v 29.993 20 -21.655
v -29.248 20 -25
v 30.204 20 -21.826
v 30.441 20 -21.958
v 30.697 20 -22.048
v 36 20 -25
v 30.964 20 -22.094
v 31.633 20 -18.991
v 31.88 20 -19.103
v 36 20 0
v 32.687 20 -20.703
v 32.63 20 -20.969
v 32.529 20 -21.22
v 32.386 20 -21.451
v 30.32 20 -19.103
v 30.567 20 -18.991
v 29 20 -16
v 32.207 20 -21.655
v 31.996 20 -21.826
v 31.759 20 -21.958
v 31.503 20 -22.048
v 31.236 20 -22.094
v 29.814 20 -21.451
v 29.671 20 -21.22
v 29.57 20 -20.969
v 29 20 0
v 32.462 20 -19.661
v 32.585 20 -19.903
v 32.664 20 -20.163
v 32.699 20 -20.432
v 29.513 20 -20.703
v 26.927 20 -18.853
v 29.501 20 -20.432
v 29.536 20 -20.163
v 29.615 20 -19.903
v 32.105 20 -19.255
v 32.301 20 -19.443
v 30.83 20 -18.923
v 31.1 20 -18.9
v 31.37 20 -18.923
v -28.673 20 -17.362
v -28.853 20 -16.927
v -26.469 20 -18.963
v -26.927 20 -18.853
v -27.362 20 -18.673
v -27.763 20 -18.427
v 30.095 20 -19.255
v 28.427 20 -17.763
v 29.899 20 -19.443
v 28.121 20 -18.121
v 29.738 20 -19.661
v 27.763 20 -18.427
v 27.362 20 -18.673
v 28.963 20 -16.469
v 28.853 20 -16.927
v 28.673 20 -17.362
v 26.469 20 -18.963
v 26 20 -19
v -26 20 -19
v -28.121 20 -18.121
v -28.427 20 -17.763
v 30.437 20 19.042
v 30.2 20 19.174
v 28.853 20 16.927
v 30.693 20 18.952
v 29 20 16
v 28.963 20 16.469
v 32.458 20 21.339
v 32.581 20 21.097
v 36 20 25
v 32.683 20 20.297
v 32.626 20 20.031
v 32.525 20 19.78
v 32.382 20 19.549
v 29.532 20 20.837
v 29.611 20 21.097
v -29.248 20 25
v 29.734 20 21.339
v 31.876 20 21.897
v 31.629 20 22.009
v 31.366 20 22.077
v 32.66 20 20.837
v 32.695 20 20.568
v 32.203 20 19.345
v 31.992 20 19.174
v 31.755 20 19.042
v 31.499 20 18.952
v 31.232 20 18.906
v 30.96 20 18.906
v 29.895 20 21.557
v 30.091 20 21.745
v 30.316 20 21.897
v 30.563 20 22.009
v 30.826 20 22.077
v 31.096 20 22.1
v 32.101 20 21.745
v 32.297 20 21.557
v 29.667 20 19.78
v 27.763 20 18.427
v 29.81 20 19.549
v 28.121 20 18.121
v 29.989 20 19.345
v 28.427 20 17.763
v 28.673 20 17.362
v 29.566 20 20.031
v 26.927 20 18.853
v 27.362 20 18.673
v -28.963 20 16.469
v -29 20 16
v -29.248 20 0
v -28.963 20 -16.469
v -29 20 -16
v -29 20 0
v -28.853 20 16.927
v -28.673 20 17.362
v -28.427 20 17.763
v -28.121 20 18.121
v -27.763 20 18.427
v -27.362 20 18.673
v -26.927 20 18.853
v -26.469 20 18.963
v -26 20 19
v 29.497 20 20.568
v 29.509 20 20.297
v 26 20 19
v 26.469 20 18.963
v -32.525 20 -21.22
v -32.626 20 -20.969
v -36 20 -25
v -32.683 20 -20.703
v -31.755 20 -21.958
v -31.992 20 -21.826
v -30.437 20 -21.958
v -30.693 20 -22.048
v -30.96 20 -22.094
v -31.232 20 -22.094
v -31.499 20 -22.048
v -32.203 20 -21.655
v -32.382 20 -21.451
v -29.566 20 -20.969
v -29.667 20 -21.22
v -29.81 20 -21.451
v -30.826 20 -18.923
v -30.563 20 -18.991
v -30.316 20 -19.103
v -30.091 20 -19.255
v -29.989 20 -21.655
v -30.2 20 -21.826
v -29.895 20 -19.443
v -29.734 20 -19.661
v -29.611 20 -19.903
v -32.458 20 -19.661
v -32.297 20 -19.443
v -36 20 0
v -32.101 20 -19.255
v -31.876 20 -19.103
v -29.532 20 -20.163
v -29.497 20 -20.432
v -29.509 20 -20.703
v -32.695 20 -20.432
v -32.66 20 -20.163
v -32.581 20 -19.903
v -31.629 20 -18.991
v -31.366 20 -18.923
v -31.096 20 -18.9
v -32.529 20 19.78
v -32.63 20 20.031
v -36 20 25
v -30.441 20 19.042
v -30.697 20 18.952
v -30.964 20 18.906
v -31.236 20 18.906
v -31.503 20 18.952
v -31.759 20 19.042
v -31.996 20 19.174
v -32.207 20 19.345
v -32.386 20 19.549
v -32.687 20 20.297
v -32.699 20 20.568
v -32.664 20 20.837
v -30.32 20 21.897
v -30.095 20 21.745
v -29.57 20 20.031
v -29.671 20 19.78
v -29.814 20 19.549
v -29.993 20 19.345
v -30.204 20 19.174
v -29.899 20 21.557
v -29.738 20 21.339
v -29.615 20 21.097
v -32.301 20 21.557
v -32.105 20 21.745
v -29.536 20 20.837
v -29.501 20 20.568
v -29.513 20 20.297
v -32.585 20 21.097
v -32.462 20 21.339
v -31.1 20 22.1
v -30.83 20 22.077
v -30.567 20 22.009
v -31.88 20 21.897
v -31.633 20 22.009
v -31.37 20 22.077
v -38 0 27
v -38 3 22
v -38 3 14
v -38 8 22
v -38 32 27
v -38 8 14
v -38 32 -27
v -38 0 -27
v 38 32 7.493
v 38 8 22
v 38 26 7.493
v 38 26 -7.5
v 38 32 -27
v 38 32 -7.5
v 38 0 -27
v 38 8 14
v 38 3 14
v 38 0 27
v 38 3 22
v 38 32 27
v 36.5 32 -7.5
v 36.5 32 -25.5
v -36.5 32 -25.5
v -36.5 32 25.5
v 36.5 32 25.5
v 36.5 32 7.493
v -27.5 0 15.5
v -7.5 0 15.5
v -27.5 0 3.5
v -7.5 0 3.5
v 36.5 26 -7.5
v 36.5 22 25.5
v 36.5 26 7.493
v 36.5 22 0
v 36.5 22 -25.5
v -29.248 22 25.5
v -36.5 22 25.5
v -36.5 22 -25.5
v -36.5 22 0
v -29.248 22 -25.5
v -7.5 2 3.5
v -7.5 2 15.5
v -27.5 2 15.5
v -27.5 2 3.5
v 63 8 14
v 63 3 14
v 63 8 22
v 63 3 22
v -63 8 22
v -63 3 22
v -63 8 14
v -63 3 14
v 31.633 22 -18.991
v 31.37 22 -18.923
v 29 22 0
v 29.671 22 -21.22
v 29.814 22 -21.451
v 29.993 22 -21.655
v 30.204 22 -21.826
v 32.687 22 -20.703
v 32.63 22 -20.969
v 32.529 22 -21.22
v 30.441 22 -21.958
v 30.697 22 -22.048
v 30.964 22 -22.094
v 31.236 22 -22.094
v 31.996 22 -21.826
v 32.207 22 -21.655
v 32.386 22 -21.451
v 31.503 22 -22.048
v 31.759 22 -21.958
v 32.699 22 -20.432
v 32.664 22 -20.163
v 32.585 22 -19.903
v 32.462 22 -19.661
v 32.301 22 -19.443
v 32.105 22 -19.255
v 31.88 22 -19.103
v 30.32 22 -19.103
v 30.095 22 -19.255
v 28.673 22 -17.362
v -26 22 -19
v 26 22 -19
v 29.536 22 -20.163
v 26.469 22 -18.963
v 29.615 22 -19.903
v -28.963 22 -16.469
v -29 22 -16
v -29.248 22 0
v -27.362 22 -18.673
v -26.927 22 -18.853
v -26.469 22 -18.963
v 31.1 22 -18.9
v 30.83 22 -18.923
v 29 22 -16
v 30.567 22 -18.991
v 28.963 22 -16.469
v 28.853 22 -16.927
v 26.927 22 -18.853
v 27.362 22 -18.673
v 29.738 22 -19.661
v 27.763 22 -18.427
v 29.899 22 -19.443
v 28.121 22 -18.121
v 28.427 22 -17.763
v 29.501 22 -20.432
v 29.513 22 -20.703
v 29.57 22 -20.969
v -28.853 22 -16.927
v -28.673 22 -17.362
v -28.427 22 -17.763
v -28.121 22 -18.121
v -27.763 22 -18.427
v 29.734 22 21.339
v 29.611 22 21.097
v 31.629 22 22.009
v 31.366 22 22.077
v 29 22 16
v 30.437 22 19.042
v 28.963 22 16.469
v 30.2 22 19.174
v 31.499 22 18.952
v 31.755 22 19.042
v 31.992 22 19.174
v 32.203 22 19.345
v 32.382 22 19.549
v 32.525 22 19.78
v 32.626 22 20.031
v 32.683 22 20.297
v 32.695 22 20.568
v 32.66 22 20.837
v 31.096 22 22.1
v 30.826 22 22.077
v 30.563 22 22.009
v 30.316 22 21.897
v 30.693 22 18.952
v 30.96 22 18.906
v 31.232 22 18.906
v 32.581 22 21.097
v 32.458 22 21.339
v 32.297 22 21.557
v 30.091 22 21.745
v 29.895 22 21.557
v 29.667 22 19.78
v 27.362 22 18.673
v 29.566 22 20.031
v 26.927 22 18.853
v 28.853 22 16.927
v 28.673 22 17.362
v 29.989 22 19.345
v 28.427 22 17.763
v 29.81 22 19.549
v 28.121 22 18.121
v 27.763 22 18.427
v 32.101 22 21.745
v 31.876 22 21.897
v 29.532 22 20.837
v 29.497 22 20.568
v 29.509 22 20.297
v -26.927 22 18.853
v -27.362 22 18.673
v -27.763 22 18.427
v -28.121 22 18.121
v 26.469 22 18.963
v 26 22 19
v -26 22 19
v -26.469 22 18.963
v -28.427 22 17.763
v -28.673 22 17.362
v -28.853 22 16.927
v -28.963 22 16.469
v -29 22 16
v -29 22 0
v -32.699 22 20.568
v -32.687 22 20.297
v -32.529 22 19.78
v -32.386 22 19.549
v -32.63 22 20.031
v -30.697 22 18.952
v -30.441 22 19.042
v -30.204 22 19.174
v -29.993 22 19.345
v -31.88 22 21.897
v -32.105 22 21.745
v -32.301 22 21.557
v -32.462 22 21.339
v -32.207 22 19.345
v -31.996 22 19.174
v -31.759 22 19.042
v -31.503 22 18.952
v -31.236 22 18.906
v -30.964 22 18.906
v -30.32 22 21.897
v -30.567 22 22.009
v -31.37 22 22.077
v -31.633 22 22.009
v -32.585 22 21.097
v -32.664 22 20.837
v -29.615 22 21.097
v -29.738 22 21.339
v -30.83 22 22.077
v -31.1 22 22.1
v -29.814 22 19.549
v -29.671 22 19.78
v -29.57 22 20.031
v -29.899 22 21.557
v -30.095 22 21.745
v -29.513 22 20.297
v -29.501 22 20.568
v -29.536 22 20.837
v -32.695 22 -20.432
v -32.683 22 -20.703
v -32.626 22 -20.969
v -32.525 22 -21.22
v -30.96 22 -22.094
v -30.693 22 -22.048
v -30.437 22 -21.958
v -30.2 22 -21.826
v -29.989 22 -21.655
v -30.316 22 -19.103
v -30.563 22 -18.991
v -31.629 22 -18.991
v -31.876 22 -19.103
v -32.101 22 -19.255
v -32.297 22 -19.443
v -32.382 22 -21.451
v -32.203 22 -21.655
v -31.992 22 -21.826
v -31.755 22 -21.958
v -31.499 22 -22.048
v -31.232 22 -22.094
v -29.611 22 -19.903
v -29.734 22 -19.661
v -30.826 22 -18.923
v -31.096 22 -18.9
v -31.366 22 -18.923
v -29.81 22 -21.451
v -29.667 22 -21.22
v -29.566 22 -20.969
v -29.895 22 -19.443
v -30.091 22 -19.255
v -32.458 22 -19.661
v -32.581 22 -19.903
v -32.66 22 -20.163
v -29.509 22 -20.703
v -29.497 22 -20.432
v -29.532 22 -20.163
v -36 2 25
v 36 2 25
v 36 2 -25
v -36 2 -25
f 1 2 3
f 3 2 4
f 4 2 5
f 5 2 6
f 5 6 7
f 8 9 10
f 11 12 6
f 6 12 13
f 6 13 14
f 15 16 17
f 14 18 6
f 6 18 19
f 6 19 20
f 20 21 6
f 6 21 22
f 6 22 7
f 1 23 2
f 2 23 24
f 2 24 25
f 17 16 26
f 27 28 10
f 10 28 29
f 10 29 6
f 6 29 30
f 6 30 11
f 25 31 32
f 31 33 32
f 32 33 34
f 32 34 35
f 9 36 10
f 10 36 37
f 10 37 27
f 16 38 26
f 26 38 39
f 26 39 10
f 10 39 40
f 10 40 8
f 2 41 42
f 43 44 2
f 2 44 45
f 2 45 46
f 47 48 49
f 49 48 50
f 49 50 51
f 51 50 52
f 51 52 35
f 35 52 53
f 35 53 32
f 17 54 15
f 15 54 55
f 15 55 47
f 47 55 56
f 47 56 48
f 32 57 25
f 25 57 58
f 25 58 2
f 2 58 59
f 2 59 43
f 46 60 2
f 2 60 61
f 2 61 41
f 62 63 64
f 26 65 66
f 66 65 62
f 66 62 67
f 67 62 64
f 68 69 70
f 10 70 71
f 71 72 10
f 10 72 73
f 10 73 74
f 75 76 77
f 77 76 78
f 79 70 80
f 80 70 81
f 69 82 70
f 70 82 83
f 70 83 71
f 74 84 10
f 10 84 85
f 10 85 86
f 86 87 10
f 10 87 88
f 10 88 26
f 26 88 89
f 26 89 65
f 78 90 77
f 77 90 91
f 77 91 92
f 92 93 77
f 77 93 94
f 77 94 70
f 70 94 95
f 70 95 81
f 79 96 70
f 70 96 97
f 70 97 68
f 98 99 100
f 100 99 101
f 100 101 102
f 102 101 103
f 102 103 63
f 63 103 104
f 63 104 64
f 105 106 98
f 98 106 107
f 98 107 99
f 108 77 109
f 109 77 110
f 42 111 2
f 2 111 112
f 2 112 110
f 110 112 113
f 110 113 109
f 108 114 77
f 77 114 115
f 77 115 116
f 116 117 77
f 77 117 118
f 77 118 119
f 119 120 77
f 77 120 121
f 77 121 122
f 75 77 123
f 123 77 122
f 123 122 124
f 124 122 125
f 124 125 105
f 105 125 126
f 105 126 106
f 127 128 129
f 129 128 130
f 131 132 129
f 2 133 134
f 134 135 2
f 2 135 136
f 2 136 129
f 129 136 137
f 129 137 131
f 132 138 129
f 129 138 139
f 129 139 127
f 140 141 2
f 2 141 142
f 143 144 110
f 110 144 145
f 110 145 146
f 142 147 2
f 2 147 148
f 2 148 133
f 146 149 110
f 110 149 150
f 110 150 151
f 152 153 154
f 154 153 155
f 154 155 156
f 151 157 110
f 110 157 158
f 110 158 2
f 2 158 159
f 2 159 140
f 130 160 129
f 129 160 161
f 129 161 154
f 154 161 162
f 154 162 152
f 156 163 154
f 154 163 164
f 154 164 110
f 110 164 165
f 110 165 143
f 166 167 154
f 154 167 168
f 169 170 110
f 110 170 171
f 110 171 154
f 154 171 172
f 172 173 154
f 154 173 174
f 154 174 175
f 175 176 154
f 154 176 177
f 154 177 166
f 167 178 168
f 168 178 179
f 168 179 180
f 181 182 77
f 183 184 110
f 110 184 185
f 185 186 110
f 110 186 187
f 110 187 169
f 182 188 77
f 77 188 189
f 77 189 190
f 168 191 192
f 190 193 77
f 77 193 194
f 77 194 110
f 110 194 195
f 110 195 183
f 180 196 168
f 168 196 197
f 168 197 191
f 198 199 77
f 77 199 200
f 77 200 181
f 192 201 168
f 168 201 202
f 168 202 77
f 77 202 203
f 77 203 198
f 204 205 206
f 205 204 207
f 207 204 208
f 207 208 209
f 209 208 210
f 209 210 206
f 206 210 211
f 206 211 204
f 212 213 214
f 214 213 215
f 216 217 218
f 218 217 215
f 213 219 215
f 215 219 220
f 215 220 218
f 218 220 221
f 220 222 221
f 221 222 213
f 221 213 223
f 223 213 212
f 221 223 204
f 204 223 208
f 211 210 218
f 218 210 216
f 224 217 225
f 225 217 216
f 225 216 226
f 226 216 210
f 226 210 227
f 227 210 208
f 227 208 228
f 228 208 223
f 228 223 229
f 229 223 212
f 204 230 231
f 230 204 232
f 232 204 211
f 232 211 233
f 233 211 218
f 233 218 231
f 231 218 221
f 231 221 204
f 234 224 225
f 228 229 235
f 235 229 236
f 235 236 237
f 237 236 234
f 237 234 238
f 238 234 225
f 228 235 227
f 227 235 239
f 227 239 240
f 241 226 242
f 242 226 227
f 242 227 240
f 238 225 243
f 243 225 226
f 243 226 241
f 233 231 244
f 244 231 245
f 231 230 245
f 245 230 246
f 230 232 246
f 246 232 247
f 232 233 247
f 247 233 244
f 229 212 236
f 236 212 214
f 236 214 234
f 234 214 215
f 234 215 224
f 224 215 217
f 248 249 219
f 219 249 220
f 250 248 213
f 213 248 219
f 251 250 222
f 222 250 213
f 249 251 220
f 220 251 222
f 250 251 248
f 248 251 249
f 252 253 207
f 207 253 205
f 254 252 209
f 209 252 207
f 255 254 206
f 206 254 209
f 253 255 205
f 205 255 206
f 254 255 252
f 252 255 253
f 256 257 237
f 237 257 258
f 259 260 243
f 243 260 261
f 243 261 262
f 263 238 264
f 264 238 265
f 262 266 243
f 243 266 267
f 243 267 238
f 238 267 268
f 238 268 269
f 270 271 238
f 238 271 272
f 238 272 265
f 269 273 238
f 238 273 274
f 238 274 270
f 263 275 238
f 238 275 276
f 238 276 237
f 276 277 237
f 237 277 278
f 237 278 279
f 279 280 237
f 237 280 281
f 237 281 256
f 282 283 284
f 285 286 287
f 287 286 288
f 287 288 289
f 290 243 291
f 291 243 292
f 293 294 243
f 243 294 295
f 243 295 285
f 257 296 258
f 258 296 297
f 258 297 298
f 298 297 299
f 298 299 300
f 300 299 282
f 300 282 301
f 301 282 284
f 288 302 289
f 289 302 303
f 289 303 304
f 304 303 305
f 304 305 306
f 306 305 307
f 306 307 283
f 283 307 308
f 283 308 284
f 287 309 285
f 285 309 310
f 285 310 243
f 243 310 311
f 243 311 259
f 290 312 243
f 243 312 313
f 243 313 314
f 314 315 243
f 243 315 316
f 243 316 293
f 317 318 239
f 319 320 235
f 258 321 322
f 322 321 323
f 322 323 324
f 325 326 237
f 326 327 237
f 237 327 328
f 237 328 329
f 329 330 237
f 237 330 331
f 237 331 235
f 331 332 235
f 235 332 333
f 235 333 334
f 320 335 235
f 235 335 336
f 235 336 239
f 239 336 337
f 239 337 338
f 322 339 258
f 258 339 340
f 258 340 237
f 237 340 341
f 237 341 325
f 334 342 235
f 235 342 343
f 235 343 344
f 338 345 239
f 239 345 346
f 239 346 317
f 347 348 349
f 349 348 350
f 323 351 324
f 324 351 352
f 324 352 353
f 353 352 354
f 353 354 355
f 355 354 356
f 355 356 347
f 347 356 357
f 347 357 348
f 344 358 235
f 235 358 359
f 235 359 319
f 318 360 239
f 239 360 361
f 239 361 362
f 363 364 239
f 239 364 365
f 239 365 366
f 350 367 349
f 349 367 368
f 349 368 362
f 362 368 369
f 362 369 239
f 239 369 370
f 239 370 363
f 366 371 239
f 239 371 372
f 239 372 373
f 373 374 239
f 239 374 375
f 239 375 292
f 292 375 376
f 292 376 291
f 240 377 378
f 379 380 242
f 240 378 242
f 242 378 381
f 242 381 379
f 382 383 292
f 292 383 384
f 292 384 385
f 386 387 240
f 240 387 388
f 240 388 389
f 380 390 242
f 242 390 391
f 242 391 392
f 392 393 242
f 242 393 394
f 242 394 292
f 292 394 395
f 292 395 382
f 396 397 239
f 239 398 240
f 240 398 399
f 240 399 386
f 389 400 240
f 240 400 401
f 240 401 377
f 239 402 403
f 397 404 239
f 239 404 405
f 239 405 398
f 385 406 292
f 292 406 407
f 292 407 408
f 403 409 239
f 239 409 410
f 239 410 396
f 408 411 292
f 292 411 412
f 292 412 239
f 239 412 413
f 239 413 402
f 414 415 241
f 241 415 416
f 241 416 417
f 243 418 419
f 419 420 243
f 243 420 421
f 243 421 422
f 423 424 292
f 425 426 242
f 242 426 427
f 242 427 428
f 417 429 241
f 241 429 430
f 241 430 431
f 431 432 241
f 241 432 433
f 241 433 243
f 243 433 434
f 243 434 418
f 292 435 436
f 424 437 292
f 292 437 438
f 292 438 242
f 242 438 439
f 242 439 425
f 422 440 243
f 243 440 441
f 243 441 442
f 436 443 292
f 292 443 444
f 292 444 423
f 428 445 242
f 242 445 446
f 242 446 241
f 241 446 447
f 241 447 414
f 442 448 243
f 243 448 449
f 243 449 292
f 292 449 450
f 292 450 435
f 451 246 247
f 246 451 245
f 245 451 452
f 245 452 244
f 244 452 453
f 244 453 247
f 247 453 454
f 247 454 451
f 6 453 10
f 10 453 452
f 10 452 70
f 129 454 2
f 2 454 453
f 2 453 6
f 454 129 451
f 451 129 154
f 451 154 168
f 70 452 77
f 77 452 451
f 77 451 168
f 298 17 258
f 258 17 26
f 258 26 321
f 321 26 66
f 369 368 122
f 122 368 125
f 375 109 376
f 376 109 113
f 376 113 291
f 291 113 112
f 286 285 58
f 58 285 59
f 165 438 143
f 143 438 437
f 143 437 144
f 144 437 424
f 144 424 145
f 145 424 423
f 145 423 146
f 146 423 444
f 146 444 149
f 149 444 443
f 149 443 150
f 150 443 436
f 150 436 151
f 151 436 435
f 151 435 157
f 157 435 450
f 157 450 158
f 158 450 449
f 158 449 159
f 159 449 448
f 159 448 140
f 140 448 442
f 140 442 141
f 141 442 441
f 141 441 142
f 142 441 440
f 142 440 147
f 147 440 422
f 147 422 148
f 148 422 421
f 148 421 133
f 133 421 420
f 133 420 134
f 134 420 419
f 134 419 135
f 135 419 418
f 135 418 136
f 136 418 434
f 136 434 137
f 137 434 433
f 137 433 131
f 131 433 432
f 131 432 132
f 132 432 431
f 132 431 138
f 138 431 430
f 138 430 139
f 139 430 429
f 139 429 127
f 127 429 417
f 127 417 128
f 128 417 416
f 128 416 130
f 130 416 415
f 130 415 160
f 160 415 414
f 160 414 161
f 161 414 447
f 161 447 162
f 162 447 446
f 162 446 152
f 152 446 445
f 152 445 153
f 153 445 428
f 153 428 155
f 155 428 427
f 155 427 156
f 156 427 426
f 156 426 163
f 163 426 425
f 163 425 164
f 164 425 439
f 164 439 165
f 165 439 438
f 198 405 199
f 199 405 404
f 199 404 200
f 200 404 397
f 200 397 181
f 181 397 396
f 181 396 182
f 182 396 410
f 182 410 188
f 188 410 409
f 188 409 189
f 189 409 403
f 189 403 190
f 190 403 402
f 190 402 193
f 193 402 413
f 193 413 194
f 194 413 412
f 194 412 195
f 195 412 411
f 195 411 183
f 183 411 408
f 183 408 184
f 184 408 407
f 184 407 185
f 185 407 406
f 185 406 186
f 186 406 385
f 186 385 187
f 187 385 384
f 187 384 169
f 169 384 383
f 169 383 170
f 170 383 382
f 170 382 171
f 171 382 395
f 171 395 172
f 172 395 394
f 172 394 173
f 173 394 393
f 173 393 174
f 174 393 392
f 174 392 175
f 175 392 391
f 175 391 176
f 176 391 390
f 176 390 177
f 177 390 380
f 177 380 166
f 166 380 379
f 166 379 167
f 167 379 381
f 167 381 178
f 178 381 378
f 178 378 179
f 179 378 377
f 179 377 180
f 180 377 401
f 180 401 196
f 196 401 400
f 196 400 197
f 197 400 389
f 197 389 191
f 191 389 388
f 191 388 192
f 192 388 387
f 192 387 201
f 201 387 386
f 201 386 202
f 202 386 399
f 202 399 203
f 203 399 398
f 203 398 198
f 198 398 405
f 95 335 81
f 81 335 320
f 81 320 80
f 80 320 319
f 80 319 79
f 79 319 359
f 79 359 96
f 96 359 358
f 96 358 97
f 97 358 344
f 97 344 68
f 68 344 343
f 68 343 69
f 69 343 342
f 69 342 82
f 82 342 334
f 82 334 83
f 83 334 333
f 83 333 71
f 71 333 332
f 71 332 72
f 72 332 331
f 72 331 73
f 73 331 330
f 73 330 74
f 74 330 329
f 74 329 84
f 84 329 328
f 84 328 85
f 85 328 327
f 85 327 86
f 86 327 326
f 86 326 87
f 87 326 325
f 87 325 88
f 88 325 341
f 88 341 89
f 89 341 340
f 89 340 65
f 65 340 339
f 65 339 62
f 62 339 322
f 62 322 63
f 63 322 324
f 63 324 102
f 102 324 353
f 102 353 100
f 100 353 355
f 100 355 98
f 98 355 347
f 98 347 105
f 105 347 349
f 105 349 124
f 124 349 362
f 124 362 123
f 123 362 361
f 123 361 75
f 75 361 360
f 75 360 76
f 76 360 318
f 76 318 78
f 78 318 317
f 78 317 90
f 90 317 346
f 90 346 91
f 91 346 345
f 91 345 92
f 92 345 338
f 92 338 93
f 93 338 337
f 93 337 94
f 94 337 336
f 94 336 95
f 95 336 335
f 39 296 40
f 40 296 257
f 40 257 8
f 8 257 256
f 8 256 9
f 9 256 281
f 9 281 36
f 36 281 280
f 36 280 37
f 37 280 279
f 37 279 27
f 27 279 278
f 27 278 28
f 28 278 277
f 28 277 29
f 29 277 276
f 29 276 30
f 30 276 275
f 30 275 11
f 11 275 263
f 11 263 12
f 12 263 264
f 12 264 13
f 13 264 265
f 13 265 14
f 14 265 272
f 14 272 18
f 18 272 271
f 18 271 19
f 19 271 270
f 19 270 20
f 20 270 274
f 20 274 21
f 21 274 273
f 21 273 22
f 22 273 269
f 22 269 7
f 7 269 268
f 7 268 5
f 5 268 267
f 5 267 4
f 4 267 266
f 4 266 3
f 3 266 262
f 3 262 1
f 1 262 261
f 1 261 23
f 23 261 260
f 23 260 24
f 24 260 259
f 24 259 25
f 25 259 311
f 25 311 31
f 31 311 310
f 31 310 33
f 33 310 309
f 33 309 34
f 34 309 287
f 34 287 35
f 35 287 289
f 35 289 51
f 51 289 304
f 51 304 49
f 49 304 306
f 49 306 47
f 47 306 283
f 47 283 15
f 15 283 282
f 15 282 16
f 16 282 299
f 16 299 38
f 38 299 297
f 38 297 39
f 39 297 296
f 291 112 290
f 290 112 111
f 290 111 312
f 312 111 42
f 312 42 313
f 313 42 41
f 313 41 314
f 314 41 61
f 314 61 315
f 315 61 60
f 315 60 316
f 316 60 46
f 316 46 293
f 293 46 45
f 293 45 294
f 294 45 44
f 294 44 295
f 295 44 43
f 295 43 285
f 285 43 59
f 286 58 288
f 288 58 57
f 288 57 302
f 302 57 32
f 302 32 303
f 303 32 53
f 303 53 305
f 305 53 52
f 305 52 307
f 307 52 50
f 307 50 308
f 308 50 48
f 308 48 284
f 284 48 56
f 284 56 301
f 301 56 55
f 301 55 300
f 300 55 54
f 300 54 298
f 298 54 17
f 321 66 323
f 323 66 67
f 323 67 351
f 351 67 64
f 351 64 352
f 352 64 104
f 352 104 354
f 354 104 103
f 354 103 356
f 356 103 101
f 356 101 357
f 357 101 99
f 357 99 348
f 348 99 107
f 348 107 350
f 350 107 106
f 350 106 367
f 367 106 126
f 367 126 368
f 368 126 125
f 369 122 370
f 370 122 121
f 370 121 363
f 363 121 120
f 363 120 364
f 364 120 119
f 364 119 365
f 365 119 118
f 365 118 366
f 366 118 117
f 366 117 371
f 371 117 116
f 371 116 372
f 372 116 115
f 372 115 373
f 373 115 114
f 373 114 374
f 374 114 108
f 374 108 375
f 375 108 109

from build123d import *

# Parameters (mm, degrees)
ENCLOSURE_SHELL_SKETCH_W      = 76
ENCLOSURE_SHELL_SKETCH_H      = 54
ENCLOSURE_SHELL_FEATURE_DEPTH = 32
ENCLOSURE_GAP_SKETCH_W        = 73
ENCLOSURE_GAP_SKETCH_H        = 51
ENCLOSURE_GAP_FEATURE_DEPTH   = 30
CAMERA_CORD_HOLE_SKETCH_W     = 20
CAMERA_CORD_HOLE_SKETCH_H     = 12
CAMERA_CORD_HOLE_DEPTH        = 3
BATTERY_CUT_REACH             = 78
BATTERY_CUT_DIRECTION_2_DEPTH = 1
RIGHT_TAB_FEATURE_SKETCH_W    = 8
RIGHT_TAB_FEATURE_SKETCH_H    = 5
RIGHT_TAB_FEATURE_DEPTH       = 25
LEFT_TAB_FEATURE_SKETCH_W     = 8
LEFT_TAB_FEATURE_SKETCH_H     = 5
LEFT_TAB_FEATURE_DEPTH        = 25
SKETCH1_W                     = 76
SKETCH1_H                     = 54
BOSS_EXTRUDE1_DEPTH           = 20
CUT_EXTRUDE2_START            = -2
SKETCH5_W                     = 72
SKETCH5_H                     = 50
CUT_EXTRUDE2_DEPTH            = 18
SCREW_SHELL_SKETCH_R          = 2.5
SCREW_SHELL_FEATURE_DEPTH     = 1
SKETCH6_W                     = 58
SKETCH6_H                     = 38
CUT_EXTRUDE3_DEPTH            = 2
SCREW_HOLE_SKETCH_R           = 1.6
CUT_EXTRUDE4_DEPTH            = 2
FILLET1_R                     = 3
FILLET2_R                     = 3
FILLET3_R                     = 3
FILLET4_R                     = 3


with BuildPart() as part:
    # Enclosure Shell Sketch → Enclosure Shell Feature (new body)
    with BuildSketch(Plane(origin=(0, 0, 0), x_dir=(1, 0, 0), z_dir=(0, 1, 0))):
        Rectangle(ENCLOSURE_SHELL_SKETCH_W, ENCLOSURE_SHELL_SKETCH_H)
    extrude(amount=ENCLOSURE_SHELL_FEATURE_DEPTH)

    # Enclosure Gap Sketch → Enclosure Gap Feature (cut)
    with BuildSketch(Plane(origin=(0, 32, 0), x_dir=(1, 0, 0), z_dir=(0, 1, 0))):
        Rectangle(ENCLOSURE_GAP_SKETCH_W, ENCLOSURE_GAP_SKETCH_H)
    extrude(amount=-ENCLOSURE_GAP_FEATURE_DEPTH, mode=Mode.SUBTRACT)

    # Camera Cord Hole Sketch → Camera Cord Hole (cut, through all)
    with BuildSketch(Plane(origin=(0, 2, 0), x_dir=(1, 0, 0), z_dir=(0, 1, 0))):
        with Locations((-17.5, -9.5)):
            Rectangle(CAMERA_CORD_HOLE_SKETCH_W, CAMERA_CORD_HOLE_SKETCH_H)
    extrude(amount=-CAMERA_CORD_HOLE_DEPTH, mode=Mode.SUBTRACT)

    # Battery Cut Sketch → Battery Cut (cut, up to next)
    with BuildSketch(Plane.ZY.offset(-38), mode=Mode.PRIVATE) as battery_cut_sk1:
        Polygon((0, 32), (7.492527579, 32), (7.492527579, 26), (-7.5, 26), (-7.5, 32), align=None)
    battery_cut_tool1 = extrude(battery_cut_sk1.sketch, amount=BATTERY_CUT_REACH, mode=Mode.PRIVATE) & part.part
    add(battery_cut_tool1.solids().sort_by_distance((38, 29, -0.003736))[0], mode=Mode.SUBTRACT)

    # Battery Cut Sketch → Battery Cut direction 2 (cut)
    with BuildSketch(Plane.ZY.offset(-38)):
        Polygon((0, 32), (7.492527579, 32), (7.492527579, 26), (-7.5, 26), (-7.5, 32), align=None)
    extrude(amount=-BATTERY_CUT_DIRECTION_2_DEPTH, mode=Mode.SUBTRACT)

    # Right Tab Feature Sketch → Right Tab Feature (add)
    with BuildSketch(Plane(origin=(38, 0, 0), x_dir=(0, 0, -1), z_dir=(1, 0, 0))):
        with Locations((-18, 5.5)):
            Rectangle(RIGHT_TAB_FEATURE_SKETCH_W, RIGHT_TAB_FEATURE_SKETCH_H)
    extrude(amount=RIGHT_TAB_FEATURE_DEPTH)

    # Left Tab Feature Sketch → Left Tab Feature (add)
    with BuildSketch(Plane.ZY.offset(38)):
        with Locations((18, 5.5)):
            Rectangle(LEFT_TAB_FEATURE_SKETCH_W, LEFT_TAB_FEATURE_SKETCH_H)
    extrude(amount=LEFT_TAB_FEATURE_DEPTH)

    # Sketch1 → Boss-Extrude1 (add)
    with BuildSketch(Plane(origin=(0, 2, 0), x_dir=(1, 0, 0), z_dir=(0, 1, 0))):
        Rectangle(SKETCH1_W, SKETCH1_H)
    extrude(amount=BOSS_EXTRUDE1_DEPTH)

    # Sketch5 → Cut-Extrude2 (cut)
    with BuildSketch(Plane(origin=(0, 0, 0), x_dir=(-1, 0, 0), z_dir=(0, -1, 0)).offset(CUT_EXTRUDE2_START)):
        Rectangle(SKETCH5_W, SKETCH5_H)
    extrude(amount=-CUT_EXTRUDE2_DEPTH, mode=Mode.SUBTRACT)

    # Screw Shell Sketch → Screw Shell Feature (add)
    with BuildSketch(Plane(origin=(0, 22, 0), x_dir=(1, 0, 0), z_dir=(0, 1, 0))):
        with Locations((-30.088214765, 20.515946978)):
            Circle(SCREW_SHELL_SKETCH_R)
        with Locations((-32.1, -21.5)):
            Circle(SCREW_SHELL_SKETCH_R)
        with Locations((32.1, 21.5)):
            Circle(SCREW_SHELL_SKETCH_R)
        with Locations((30.088214765, -20.515946978)):
            Circle(SCREW_SHELL_SKETCH_R)
    extrude(amount=-SCREW_SHELL_FEATURE_DEPTH)

    # Sketch6 → Cut-Extrude3 (cut)
    with BuildSketch(Plane(origin=(0, 22, 0), x_dir=(1, 0, 0), z_dir=(0, 1, 0))):
        Rectangle(SKETCH6_W, SKETCH6_H)
    extrude(amount=-CUT_EXTRUDE3_DEPTH, mode=Mode.SUBTRACT)

    # Screw Hole Sketch → Cut-Extrude4 (cut)
    with BuildSketch(Plane(origin=(0, 22, 0), x_dir=(1, 0, 0), z_dir=(0, 1, 0))):
        with Locations((-31.096, 20.5)):
            Circle(SCREW_HOLE_SKETCH_R)
        with Locations((-31.1, -20.5)):
            Circle(SCREW_HOLE_SKETCH_R)
        with Locations((31.096, -20.5)):
            Circle(SCREW_HOLE_SKETCH_R)
        with Locations((31.1, 20.5)):
            Circle(SCREW_HOLE_SKETCH_R)
    extrude(amount=-CUT_EXTRUDE4_DEPTH, mode=Mode.SUBTRACT)

    # Fillet1
    fillet1_edges = [part.edges().sort_by_distance(p)[0] for p in [
        (-29, 21, -19),
    ]]
    fillet(fillet1_edges, radius=FILLET1_R)

    # Fillet2
    fillet2_edges = [part.edges().sort_by_distance(p)[0] for p in [
        (29, 21, -19),
    ]]
    fillet(fillet2_edges, radius=FILLET2_R)

    # Fillet3
    fillet3_edges = [part.edges().sort_by_distance(p)[0] for p in [
        (29, 21, 19),
    ]]
    fillet(fillet3_edges, radius=FILLET3_R)

    # Fillet4
    fillet4_edges = [part.edges().sort_by_distance(p)[0] for p in [
        (-29, 21, 19),
    ]]
    fillet(fillet4_edges, radius=FILLET4_R)


solid = part.part
